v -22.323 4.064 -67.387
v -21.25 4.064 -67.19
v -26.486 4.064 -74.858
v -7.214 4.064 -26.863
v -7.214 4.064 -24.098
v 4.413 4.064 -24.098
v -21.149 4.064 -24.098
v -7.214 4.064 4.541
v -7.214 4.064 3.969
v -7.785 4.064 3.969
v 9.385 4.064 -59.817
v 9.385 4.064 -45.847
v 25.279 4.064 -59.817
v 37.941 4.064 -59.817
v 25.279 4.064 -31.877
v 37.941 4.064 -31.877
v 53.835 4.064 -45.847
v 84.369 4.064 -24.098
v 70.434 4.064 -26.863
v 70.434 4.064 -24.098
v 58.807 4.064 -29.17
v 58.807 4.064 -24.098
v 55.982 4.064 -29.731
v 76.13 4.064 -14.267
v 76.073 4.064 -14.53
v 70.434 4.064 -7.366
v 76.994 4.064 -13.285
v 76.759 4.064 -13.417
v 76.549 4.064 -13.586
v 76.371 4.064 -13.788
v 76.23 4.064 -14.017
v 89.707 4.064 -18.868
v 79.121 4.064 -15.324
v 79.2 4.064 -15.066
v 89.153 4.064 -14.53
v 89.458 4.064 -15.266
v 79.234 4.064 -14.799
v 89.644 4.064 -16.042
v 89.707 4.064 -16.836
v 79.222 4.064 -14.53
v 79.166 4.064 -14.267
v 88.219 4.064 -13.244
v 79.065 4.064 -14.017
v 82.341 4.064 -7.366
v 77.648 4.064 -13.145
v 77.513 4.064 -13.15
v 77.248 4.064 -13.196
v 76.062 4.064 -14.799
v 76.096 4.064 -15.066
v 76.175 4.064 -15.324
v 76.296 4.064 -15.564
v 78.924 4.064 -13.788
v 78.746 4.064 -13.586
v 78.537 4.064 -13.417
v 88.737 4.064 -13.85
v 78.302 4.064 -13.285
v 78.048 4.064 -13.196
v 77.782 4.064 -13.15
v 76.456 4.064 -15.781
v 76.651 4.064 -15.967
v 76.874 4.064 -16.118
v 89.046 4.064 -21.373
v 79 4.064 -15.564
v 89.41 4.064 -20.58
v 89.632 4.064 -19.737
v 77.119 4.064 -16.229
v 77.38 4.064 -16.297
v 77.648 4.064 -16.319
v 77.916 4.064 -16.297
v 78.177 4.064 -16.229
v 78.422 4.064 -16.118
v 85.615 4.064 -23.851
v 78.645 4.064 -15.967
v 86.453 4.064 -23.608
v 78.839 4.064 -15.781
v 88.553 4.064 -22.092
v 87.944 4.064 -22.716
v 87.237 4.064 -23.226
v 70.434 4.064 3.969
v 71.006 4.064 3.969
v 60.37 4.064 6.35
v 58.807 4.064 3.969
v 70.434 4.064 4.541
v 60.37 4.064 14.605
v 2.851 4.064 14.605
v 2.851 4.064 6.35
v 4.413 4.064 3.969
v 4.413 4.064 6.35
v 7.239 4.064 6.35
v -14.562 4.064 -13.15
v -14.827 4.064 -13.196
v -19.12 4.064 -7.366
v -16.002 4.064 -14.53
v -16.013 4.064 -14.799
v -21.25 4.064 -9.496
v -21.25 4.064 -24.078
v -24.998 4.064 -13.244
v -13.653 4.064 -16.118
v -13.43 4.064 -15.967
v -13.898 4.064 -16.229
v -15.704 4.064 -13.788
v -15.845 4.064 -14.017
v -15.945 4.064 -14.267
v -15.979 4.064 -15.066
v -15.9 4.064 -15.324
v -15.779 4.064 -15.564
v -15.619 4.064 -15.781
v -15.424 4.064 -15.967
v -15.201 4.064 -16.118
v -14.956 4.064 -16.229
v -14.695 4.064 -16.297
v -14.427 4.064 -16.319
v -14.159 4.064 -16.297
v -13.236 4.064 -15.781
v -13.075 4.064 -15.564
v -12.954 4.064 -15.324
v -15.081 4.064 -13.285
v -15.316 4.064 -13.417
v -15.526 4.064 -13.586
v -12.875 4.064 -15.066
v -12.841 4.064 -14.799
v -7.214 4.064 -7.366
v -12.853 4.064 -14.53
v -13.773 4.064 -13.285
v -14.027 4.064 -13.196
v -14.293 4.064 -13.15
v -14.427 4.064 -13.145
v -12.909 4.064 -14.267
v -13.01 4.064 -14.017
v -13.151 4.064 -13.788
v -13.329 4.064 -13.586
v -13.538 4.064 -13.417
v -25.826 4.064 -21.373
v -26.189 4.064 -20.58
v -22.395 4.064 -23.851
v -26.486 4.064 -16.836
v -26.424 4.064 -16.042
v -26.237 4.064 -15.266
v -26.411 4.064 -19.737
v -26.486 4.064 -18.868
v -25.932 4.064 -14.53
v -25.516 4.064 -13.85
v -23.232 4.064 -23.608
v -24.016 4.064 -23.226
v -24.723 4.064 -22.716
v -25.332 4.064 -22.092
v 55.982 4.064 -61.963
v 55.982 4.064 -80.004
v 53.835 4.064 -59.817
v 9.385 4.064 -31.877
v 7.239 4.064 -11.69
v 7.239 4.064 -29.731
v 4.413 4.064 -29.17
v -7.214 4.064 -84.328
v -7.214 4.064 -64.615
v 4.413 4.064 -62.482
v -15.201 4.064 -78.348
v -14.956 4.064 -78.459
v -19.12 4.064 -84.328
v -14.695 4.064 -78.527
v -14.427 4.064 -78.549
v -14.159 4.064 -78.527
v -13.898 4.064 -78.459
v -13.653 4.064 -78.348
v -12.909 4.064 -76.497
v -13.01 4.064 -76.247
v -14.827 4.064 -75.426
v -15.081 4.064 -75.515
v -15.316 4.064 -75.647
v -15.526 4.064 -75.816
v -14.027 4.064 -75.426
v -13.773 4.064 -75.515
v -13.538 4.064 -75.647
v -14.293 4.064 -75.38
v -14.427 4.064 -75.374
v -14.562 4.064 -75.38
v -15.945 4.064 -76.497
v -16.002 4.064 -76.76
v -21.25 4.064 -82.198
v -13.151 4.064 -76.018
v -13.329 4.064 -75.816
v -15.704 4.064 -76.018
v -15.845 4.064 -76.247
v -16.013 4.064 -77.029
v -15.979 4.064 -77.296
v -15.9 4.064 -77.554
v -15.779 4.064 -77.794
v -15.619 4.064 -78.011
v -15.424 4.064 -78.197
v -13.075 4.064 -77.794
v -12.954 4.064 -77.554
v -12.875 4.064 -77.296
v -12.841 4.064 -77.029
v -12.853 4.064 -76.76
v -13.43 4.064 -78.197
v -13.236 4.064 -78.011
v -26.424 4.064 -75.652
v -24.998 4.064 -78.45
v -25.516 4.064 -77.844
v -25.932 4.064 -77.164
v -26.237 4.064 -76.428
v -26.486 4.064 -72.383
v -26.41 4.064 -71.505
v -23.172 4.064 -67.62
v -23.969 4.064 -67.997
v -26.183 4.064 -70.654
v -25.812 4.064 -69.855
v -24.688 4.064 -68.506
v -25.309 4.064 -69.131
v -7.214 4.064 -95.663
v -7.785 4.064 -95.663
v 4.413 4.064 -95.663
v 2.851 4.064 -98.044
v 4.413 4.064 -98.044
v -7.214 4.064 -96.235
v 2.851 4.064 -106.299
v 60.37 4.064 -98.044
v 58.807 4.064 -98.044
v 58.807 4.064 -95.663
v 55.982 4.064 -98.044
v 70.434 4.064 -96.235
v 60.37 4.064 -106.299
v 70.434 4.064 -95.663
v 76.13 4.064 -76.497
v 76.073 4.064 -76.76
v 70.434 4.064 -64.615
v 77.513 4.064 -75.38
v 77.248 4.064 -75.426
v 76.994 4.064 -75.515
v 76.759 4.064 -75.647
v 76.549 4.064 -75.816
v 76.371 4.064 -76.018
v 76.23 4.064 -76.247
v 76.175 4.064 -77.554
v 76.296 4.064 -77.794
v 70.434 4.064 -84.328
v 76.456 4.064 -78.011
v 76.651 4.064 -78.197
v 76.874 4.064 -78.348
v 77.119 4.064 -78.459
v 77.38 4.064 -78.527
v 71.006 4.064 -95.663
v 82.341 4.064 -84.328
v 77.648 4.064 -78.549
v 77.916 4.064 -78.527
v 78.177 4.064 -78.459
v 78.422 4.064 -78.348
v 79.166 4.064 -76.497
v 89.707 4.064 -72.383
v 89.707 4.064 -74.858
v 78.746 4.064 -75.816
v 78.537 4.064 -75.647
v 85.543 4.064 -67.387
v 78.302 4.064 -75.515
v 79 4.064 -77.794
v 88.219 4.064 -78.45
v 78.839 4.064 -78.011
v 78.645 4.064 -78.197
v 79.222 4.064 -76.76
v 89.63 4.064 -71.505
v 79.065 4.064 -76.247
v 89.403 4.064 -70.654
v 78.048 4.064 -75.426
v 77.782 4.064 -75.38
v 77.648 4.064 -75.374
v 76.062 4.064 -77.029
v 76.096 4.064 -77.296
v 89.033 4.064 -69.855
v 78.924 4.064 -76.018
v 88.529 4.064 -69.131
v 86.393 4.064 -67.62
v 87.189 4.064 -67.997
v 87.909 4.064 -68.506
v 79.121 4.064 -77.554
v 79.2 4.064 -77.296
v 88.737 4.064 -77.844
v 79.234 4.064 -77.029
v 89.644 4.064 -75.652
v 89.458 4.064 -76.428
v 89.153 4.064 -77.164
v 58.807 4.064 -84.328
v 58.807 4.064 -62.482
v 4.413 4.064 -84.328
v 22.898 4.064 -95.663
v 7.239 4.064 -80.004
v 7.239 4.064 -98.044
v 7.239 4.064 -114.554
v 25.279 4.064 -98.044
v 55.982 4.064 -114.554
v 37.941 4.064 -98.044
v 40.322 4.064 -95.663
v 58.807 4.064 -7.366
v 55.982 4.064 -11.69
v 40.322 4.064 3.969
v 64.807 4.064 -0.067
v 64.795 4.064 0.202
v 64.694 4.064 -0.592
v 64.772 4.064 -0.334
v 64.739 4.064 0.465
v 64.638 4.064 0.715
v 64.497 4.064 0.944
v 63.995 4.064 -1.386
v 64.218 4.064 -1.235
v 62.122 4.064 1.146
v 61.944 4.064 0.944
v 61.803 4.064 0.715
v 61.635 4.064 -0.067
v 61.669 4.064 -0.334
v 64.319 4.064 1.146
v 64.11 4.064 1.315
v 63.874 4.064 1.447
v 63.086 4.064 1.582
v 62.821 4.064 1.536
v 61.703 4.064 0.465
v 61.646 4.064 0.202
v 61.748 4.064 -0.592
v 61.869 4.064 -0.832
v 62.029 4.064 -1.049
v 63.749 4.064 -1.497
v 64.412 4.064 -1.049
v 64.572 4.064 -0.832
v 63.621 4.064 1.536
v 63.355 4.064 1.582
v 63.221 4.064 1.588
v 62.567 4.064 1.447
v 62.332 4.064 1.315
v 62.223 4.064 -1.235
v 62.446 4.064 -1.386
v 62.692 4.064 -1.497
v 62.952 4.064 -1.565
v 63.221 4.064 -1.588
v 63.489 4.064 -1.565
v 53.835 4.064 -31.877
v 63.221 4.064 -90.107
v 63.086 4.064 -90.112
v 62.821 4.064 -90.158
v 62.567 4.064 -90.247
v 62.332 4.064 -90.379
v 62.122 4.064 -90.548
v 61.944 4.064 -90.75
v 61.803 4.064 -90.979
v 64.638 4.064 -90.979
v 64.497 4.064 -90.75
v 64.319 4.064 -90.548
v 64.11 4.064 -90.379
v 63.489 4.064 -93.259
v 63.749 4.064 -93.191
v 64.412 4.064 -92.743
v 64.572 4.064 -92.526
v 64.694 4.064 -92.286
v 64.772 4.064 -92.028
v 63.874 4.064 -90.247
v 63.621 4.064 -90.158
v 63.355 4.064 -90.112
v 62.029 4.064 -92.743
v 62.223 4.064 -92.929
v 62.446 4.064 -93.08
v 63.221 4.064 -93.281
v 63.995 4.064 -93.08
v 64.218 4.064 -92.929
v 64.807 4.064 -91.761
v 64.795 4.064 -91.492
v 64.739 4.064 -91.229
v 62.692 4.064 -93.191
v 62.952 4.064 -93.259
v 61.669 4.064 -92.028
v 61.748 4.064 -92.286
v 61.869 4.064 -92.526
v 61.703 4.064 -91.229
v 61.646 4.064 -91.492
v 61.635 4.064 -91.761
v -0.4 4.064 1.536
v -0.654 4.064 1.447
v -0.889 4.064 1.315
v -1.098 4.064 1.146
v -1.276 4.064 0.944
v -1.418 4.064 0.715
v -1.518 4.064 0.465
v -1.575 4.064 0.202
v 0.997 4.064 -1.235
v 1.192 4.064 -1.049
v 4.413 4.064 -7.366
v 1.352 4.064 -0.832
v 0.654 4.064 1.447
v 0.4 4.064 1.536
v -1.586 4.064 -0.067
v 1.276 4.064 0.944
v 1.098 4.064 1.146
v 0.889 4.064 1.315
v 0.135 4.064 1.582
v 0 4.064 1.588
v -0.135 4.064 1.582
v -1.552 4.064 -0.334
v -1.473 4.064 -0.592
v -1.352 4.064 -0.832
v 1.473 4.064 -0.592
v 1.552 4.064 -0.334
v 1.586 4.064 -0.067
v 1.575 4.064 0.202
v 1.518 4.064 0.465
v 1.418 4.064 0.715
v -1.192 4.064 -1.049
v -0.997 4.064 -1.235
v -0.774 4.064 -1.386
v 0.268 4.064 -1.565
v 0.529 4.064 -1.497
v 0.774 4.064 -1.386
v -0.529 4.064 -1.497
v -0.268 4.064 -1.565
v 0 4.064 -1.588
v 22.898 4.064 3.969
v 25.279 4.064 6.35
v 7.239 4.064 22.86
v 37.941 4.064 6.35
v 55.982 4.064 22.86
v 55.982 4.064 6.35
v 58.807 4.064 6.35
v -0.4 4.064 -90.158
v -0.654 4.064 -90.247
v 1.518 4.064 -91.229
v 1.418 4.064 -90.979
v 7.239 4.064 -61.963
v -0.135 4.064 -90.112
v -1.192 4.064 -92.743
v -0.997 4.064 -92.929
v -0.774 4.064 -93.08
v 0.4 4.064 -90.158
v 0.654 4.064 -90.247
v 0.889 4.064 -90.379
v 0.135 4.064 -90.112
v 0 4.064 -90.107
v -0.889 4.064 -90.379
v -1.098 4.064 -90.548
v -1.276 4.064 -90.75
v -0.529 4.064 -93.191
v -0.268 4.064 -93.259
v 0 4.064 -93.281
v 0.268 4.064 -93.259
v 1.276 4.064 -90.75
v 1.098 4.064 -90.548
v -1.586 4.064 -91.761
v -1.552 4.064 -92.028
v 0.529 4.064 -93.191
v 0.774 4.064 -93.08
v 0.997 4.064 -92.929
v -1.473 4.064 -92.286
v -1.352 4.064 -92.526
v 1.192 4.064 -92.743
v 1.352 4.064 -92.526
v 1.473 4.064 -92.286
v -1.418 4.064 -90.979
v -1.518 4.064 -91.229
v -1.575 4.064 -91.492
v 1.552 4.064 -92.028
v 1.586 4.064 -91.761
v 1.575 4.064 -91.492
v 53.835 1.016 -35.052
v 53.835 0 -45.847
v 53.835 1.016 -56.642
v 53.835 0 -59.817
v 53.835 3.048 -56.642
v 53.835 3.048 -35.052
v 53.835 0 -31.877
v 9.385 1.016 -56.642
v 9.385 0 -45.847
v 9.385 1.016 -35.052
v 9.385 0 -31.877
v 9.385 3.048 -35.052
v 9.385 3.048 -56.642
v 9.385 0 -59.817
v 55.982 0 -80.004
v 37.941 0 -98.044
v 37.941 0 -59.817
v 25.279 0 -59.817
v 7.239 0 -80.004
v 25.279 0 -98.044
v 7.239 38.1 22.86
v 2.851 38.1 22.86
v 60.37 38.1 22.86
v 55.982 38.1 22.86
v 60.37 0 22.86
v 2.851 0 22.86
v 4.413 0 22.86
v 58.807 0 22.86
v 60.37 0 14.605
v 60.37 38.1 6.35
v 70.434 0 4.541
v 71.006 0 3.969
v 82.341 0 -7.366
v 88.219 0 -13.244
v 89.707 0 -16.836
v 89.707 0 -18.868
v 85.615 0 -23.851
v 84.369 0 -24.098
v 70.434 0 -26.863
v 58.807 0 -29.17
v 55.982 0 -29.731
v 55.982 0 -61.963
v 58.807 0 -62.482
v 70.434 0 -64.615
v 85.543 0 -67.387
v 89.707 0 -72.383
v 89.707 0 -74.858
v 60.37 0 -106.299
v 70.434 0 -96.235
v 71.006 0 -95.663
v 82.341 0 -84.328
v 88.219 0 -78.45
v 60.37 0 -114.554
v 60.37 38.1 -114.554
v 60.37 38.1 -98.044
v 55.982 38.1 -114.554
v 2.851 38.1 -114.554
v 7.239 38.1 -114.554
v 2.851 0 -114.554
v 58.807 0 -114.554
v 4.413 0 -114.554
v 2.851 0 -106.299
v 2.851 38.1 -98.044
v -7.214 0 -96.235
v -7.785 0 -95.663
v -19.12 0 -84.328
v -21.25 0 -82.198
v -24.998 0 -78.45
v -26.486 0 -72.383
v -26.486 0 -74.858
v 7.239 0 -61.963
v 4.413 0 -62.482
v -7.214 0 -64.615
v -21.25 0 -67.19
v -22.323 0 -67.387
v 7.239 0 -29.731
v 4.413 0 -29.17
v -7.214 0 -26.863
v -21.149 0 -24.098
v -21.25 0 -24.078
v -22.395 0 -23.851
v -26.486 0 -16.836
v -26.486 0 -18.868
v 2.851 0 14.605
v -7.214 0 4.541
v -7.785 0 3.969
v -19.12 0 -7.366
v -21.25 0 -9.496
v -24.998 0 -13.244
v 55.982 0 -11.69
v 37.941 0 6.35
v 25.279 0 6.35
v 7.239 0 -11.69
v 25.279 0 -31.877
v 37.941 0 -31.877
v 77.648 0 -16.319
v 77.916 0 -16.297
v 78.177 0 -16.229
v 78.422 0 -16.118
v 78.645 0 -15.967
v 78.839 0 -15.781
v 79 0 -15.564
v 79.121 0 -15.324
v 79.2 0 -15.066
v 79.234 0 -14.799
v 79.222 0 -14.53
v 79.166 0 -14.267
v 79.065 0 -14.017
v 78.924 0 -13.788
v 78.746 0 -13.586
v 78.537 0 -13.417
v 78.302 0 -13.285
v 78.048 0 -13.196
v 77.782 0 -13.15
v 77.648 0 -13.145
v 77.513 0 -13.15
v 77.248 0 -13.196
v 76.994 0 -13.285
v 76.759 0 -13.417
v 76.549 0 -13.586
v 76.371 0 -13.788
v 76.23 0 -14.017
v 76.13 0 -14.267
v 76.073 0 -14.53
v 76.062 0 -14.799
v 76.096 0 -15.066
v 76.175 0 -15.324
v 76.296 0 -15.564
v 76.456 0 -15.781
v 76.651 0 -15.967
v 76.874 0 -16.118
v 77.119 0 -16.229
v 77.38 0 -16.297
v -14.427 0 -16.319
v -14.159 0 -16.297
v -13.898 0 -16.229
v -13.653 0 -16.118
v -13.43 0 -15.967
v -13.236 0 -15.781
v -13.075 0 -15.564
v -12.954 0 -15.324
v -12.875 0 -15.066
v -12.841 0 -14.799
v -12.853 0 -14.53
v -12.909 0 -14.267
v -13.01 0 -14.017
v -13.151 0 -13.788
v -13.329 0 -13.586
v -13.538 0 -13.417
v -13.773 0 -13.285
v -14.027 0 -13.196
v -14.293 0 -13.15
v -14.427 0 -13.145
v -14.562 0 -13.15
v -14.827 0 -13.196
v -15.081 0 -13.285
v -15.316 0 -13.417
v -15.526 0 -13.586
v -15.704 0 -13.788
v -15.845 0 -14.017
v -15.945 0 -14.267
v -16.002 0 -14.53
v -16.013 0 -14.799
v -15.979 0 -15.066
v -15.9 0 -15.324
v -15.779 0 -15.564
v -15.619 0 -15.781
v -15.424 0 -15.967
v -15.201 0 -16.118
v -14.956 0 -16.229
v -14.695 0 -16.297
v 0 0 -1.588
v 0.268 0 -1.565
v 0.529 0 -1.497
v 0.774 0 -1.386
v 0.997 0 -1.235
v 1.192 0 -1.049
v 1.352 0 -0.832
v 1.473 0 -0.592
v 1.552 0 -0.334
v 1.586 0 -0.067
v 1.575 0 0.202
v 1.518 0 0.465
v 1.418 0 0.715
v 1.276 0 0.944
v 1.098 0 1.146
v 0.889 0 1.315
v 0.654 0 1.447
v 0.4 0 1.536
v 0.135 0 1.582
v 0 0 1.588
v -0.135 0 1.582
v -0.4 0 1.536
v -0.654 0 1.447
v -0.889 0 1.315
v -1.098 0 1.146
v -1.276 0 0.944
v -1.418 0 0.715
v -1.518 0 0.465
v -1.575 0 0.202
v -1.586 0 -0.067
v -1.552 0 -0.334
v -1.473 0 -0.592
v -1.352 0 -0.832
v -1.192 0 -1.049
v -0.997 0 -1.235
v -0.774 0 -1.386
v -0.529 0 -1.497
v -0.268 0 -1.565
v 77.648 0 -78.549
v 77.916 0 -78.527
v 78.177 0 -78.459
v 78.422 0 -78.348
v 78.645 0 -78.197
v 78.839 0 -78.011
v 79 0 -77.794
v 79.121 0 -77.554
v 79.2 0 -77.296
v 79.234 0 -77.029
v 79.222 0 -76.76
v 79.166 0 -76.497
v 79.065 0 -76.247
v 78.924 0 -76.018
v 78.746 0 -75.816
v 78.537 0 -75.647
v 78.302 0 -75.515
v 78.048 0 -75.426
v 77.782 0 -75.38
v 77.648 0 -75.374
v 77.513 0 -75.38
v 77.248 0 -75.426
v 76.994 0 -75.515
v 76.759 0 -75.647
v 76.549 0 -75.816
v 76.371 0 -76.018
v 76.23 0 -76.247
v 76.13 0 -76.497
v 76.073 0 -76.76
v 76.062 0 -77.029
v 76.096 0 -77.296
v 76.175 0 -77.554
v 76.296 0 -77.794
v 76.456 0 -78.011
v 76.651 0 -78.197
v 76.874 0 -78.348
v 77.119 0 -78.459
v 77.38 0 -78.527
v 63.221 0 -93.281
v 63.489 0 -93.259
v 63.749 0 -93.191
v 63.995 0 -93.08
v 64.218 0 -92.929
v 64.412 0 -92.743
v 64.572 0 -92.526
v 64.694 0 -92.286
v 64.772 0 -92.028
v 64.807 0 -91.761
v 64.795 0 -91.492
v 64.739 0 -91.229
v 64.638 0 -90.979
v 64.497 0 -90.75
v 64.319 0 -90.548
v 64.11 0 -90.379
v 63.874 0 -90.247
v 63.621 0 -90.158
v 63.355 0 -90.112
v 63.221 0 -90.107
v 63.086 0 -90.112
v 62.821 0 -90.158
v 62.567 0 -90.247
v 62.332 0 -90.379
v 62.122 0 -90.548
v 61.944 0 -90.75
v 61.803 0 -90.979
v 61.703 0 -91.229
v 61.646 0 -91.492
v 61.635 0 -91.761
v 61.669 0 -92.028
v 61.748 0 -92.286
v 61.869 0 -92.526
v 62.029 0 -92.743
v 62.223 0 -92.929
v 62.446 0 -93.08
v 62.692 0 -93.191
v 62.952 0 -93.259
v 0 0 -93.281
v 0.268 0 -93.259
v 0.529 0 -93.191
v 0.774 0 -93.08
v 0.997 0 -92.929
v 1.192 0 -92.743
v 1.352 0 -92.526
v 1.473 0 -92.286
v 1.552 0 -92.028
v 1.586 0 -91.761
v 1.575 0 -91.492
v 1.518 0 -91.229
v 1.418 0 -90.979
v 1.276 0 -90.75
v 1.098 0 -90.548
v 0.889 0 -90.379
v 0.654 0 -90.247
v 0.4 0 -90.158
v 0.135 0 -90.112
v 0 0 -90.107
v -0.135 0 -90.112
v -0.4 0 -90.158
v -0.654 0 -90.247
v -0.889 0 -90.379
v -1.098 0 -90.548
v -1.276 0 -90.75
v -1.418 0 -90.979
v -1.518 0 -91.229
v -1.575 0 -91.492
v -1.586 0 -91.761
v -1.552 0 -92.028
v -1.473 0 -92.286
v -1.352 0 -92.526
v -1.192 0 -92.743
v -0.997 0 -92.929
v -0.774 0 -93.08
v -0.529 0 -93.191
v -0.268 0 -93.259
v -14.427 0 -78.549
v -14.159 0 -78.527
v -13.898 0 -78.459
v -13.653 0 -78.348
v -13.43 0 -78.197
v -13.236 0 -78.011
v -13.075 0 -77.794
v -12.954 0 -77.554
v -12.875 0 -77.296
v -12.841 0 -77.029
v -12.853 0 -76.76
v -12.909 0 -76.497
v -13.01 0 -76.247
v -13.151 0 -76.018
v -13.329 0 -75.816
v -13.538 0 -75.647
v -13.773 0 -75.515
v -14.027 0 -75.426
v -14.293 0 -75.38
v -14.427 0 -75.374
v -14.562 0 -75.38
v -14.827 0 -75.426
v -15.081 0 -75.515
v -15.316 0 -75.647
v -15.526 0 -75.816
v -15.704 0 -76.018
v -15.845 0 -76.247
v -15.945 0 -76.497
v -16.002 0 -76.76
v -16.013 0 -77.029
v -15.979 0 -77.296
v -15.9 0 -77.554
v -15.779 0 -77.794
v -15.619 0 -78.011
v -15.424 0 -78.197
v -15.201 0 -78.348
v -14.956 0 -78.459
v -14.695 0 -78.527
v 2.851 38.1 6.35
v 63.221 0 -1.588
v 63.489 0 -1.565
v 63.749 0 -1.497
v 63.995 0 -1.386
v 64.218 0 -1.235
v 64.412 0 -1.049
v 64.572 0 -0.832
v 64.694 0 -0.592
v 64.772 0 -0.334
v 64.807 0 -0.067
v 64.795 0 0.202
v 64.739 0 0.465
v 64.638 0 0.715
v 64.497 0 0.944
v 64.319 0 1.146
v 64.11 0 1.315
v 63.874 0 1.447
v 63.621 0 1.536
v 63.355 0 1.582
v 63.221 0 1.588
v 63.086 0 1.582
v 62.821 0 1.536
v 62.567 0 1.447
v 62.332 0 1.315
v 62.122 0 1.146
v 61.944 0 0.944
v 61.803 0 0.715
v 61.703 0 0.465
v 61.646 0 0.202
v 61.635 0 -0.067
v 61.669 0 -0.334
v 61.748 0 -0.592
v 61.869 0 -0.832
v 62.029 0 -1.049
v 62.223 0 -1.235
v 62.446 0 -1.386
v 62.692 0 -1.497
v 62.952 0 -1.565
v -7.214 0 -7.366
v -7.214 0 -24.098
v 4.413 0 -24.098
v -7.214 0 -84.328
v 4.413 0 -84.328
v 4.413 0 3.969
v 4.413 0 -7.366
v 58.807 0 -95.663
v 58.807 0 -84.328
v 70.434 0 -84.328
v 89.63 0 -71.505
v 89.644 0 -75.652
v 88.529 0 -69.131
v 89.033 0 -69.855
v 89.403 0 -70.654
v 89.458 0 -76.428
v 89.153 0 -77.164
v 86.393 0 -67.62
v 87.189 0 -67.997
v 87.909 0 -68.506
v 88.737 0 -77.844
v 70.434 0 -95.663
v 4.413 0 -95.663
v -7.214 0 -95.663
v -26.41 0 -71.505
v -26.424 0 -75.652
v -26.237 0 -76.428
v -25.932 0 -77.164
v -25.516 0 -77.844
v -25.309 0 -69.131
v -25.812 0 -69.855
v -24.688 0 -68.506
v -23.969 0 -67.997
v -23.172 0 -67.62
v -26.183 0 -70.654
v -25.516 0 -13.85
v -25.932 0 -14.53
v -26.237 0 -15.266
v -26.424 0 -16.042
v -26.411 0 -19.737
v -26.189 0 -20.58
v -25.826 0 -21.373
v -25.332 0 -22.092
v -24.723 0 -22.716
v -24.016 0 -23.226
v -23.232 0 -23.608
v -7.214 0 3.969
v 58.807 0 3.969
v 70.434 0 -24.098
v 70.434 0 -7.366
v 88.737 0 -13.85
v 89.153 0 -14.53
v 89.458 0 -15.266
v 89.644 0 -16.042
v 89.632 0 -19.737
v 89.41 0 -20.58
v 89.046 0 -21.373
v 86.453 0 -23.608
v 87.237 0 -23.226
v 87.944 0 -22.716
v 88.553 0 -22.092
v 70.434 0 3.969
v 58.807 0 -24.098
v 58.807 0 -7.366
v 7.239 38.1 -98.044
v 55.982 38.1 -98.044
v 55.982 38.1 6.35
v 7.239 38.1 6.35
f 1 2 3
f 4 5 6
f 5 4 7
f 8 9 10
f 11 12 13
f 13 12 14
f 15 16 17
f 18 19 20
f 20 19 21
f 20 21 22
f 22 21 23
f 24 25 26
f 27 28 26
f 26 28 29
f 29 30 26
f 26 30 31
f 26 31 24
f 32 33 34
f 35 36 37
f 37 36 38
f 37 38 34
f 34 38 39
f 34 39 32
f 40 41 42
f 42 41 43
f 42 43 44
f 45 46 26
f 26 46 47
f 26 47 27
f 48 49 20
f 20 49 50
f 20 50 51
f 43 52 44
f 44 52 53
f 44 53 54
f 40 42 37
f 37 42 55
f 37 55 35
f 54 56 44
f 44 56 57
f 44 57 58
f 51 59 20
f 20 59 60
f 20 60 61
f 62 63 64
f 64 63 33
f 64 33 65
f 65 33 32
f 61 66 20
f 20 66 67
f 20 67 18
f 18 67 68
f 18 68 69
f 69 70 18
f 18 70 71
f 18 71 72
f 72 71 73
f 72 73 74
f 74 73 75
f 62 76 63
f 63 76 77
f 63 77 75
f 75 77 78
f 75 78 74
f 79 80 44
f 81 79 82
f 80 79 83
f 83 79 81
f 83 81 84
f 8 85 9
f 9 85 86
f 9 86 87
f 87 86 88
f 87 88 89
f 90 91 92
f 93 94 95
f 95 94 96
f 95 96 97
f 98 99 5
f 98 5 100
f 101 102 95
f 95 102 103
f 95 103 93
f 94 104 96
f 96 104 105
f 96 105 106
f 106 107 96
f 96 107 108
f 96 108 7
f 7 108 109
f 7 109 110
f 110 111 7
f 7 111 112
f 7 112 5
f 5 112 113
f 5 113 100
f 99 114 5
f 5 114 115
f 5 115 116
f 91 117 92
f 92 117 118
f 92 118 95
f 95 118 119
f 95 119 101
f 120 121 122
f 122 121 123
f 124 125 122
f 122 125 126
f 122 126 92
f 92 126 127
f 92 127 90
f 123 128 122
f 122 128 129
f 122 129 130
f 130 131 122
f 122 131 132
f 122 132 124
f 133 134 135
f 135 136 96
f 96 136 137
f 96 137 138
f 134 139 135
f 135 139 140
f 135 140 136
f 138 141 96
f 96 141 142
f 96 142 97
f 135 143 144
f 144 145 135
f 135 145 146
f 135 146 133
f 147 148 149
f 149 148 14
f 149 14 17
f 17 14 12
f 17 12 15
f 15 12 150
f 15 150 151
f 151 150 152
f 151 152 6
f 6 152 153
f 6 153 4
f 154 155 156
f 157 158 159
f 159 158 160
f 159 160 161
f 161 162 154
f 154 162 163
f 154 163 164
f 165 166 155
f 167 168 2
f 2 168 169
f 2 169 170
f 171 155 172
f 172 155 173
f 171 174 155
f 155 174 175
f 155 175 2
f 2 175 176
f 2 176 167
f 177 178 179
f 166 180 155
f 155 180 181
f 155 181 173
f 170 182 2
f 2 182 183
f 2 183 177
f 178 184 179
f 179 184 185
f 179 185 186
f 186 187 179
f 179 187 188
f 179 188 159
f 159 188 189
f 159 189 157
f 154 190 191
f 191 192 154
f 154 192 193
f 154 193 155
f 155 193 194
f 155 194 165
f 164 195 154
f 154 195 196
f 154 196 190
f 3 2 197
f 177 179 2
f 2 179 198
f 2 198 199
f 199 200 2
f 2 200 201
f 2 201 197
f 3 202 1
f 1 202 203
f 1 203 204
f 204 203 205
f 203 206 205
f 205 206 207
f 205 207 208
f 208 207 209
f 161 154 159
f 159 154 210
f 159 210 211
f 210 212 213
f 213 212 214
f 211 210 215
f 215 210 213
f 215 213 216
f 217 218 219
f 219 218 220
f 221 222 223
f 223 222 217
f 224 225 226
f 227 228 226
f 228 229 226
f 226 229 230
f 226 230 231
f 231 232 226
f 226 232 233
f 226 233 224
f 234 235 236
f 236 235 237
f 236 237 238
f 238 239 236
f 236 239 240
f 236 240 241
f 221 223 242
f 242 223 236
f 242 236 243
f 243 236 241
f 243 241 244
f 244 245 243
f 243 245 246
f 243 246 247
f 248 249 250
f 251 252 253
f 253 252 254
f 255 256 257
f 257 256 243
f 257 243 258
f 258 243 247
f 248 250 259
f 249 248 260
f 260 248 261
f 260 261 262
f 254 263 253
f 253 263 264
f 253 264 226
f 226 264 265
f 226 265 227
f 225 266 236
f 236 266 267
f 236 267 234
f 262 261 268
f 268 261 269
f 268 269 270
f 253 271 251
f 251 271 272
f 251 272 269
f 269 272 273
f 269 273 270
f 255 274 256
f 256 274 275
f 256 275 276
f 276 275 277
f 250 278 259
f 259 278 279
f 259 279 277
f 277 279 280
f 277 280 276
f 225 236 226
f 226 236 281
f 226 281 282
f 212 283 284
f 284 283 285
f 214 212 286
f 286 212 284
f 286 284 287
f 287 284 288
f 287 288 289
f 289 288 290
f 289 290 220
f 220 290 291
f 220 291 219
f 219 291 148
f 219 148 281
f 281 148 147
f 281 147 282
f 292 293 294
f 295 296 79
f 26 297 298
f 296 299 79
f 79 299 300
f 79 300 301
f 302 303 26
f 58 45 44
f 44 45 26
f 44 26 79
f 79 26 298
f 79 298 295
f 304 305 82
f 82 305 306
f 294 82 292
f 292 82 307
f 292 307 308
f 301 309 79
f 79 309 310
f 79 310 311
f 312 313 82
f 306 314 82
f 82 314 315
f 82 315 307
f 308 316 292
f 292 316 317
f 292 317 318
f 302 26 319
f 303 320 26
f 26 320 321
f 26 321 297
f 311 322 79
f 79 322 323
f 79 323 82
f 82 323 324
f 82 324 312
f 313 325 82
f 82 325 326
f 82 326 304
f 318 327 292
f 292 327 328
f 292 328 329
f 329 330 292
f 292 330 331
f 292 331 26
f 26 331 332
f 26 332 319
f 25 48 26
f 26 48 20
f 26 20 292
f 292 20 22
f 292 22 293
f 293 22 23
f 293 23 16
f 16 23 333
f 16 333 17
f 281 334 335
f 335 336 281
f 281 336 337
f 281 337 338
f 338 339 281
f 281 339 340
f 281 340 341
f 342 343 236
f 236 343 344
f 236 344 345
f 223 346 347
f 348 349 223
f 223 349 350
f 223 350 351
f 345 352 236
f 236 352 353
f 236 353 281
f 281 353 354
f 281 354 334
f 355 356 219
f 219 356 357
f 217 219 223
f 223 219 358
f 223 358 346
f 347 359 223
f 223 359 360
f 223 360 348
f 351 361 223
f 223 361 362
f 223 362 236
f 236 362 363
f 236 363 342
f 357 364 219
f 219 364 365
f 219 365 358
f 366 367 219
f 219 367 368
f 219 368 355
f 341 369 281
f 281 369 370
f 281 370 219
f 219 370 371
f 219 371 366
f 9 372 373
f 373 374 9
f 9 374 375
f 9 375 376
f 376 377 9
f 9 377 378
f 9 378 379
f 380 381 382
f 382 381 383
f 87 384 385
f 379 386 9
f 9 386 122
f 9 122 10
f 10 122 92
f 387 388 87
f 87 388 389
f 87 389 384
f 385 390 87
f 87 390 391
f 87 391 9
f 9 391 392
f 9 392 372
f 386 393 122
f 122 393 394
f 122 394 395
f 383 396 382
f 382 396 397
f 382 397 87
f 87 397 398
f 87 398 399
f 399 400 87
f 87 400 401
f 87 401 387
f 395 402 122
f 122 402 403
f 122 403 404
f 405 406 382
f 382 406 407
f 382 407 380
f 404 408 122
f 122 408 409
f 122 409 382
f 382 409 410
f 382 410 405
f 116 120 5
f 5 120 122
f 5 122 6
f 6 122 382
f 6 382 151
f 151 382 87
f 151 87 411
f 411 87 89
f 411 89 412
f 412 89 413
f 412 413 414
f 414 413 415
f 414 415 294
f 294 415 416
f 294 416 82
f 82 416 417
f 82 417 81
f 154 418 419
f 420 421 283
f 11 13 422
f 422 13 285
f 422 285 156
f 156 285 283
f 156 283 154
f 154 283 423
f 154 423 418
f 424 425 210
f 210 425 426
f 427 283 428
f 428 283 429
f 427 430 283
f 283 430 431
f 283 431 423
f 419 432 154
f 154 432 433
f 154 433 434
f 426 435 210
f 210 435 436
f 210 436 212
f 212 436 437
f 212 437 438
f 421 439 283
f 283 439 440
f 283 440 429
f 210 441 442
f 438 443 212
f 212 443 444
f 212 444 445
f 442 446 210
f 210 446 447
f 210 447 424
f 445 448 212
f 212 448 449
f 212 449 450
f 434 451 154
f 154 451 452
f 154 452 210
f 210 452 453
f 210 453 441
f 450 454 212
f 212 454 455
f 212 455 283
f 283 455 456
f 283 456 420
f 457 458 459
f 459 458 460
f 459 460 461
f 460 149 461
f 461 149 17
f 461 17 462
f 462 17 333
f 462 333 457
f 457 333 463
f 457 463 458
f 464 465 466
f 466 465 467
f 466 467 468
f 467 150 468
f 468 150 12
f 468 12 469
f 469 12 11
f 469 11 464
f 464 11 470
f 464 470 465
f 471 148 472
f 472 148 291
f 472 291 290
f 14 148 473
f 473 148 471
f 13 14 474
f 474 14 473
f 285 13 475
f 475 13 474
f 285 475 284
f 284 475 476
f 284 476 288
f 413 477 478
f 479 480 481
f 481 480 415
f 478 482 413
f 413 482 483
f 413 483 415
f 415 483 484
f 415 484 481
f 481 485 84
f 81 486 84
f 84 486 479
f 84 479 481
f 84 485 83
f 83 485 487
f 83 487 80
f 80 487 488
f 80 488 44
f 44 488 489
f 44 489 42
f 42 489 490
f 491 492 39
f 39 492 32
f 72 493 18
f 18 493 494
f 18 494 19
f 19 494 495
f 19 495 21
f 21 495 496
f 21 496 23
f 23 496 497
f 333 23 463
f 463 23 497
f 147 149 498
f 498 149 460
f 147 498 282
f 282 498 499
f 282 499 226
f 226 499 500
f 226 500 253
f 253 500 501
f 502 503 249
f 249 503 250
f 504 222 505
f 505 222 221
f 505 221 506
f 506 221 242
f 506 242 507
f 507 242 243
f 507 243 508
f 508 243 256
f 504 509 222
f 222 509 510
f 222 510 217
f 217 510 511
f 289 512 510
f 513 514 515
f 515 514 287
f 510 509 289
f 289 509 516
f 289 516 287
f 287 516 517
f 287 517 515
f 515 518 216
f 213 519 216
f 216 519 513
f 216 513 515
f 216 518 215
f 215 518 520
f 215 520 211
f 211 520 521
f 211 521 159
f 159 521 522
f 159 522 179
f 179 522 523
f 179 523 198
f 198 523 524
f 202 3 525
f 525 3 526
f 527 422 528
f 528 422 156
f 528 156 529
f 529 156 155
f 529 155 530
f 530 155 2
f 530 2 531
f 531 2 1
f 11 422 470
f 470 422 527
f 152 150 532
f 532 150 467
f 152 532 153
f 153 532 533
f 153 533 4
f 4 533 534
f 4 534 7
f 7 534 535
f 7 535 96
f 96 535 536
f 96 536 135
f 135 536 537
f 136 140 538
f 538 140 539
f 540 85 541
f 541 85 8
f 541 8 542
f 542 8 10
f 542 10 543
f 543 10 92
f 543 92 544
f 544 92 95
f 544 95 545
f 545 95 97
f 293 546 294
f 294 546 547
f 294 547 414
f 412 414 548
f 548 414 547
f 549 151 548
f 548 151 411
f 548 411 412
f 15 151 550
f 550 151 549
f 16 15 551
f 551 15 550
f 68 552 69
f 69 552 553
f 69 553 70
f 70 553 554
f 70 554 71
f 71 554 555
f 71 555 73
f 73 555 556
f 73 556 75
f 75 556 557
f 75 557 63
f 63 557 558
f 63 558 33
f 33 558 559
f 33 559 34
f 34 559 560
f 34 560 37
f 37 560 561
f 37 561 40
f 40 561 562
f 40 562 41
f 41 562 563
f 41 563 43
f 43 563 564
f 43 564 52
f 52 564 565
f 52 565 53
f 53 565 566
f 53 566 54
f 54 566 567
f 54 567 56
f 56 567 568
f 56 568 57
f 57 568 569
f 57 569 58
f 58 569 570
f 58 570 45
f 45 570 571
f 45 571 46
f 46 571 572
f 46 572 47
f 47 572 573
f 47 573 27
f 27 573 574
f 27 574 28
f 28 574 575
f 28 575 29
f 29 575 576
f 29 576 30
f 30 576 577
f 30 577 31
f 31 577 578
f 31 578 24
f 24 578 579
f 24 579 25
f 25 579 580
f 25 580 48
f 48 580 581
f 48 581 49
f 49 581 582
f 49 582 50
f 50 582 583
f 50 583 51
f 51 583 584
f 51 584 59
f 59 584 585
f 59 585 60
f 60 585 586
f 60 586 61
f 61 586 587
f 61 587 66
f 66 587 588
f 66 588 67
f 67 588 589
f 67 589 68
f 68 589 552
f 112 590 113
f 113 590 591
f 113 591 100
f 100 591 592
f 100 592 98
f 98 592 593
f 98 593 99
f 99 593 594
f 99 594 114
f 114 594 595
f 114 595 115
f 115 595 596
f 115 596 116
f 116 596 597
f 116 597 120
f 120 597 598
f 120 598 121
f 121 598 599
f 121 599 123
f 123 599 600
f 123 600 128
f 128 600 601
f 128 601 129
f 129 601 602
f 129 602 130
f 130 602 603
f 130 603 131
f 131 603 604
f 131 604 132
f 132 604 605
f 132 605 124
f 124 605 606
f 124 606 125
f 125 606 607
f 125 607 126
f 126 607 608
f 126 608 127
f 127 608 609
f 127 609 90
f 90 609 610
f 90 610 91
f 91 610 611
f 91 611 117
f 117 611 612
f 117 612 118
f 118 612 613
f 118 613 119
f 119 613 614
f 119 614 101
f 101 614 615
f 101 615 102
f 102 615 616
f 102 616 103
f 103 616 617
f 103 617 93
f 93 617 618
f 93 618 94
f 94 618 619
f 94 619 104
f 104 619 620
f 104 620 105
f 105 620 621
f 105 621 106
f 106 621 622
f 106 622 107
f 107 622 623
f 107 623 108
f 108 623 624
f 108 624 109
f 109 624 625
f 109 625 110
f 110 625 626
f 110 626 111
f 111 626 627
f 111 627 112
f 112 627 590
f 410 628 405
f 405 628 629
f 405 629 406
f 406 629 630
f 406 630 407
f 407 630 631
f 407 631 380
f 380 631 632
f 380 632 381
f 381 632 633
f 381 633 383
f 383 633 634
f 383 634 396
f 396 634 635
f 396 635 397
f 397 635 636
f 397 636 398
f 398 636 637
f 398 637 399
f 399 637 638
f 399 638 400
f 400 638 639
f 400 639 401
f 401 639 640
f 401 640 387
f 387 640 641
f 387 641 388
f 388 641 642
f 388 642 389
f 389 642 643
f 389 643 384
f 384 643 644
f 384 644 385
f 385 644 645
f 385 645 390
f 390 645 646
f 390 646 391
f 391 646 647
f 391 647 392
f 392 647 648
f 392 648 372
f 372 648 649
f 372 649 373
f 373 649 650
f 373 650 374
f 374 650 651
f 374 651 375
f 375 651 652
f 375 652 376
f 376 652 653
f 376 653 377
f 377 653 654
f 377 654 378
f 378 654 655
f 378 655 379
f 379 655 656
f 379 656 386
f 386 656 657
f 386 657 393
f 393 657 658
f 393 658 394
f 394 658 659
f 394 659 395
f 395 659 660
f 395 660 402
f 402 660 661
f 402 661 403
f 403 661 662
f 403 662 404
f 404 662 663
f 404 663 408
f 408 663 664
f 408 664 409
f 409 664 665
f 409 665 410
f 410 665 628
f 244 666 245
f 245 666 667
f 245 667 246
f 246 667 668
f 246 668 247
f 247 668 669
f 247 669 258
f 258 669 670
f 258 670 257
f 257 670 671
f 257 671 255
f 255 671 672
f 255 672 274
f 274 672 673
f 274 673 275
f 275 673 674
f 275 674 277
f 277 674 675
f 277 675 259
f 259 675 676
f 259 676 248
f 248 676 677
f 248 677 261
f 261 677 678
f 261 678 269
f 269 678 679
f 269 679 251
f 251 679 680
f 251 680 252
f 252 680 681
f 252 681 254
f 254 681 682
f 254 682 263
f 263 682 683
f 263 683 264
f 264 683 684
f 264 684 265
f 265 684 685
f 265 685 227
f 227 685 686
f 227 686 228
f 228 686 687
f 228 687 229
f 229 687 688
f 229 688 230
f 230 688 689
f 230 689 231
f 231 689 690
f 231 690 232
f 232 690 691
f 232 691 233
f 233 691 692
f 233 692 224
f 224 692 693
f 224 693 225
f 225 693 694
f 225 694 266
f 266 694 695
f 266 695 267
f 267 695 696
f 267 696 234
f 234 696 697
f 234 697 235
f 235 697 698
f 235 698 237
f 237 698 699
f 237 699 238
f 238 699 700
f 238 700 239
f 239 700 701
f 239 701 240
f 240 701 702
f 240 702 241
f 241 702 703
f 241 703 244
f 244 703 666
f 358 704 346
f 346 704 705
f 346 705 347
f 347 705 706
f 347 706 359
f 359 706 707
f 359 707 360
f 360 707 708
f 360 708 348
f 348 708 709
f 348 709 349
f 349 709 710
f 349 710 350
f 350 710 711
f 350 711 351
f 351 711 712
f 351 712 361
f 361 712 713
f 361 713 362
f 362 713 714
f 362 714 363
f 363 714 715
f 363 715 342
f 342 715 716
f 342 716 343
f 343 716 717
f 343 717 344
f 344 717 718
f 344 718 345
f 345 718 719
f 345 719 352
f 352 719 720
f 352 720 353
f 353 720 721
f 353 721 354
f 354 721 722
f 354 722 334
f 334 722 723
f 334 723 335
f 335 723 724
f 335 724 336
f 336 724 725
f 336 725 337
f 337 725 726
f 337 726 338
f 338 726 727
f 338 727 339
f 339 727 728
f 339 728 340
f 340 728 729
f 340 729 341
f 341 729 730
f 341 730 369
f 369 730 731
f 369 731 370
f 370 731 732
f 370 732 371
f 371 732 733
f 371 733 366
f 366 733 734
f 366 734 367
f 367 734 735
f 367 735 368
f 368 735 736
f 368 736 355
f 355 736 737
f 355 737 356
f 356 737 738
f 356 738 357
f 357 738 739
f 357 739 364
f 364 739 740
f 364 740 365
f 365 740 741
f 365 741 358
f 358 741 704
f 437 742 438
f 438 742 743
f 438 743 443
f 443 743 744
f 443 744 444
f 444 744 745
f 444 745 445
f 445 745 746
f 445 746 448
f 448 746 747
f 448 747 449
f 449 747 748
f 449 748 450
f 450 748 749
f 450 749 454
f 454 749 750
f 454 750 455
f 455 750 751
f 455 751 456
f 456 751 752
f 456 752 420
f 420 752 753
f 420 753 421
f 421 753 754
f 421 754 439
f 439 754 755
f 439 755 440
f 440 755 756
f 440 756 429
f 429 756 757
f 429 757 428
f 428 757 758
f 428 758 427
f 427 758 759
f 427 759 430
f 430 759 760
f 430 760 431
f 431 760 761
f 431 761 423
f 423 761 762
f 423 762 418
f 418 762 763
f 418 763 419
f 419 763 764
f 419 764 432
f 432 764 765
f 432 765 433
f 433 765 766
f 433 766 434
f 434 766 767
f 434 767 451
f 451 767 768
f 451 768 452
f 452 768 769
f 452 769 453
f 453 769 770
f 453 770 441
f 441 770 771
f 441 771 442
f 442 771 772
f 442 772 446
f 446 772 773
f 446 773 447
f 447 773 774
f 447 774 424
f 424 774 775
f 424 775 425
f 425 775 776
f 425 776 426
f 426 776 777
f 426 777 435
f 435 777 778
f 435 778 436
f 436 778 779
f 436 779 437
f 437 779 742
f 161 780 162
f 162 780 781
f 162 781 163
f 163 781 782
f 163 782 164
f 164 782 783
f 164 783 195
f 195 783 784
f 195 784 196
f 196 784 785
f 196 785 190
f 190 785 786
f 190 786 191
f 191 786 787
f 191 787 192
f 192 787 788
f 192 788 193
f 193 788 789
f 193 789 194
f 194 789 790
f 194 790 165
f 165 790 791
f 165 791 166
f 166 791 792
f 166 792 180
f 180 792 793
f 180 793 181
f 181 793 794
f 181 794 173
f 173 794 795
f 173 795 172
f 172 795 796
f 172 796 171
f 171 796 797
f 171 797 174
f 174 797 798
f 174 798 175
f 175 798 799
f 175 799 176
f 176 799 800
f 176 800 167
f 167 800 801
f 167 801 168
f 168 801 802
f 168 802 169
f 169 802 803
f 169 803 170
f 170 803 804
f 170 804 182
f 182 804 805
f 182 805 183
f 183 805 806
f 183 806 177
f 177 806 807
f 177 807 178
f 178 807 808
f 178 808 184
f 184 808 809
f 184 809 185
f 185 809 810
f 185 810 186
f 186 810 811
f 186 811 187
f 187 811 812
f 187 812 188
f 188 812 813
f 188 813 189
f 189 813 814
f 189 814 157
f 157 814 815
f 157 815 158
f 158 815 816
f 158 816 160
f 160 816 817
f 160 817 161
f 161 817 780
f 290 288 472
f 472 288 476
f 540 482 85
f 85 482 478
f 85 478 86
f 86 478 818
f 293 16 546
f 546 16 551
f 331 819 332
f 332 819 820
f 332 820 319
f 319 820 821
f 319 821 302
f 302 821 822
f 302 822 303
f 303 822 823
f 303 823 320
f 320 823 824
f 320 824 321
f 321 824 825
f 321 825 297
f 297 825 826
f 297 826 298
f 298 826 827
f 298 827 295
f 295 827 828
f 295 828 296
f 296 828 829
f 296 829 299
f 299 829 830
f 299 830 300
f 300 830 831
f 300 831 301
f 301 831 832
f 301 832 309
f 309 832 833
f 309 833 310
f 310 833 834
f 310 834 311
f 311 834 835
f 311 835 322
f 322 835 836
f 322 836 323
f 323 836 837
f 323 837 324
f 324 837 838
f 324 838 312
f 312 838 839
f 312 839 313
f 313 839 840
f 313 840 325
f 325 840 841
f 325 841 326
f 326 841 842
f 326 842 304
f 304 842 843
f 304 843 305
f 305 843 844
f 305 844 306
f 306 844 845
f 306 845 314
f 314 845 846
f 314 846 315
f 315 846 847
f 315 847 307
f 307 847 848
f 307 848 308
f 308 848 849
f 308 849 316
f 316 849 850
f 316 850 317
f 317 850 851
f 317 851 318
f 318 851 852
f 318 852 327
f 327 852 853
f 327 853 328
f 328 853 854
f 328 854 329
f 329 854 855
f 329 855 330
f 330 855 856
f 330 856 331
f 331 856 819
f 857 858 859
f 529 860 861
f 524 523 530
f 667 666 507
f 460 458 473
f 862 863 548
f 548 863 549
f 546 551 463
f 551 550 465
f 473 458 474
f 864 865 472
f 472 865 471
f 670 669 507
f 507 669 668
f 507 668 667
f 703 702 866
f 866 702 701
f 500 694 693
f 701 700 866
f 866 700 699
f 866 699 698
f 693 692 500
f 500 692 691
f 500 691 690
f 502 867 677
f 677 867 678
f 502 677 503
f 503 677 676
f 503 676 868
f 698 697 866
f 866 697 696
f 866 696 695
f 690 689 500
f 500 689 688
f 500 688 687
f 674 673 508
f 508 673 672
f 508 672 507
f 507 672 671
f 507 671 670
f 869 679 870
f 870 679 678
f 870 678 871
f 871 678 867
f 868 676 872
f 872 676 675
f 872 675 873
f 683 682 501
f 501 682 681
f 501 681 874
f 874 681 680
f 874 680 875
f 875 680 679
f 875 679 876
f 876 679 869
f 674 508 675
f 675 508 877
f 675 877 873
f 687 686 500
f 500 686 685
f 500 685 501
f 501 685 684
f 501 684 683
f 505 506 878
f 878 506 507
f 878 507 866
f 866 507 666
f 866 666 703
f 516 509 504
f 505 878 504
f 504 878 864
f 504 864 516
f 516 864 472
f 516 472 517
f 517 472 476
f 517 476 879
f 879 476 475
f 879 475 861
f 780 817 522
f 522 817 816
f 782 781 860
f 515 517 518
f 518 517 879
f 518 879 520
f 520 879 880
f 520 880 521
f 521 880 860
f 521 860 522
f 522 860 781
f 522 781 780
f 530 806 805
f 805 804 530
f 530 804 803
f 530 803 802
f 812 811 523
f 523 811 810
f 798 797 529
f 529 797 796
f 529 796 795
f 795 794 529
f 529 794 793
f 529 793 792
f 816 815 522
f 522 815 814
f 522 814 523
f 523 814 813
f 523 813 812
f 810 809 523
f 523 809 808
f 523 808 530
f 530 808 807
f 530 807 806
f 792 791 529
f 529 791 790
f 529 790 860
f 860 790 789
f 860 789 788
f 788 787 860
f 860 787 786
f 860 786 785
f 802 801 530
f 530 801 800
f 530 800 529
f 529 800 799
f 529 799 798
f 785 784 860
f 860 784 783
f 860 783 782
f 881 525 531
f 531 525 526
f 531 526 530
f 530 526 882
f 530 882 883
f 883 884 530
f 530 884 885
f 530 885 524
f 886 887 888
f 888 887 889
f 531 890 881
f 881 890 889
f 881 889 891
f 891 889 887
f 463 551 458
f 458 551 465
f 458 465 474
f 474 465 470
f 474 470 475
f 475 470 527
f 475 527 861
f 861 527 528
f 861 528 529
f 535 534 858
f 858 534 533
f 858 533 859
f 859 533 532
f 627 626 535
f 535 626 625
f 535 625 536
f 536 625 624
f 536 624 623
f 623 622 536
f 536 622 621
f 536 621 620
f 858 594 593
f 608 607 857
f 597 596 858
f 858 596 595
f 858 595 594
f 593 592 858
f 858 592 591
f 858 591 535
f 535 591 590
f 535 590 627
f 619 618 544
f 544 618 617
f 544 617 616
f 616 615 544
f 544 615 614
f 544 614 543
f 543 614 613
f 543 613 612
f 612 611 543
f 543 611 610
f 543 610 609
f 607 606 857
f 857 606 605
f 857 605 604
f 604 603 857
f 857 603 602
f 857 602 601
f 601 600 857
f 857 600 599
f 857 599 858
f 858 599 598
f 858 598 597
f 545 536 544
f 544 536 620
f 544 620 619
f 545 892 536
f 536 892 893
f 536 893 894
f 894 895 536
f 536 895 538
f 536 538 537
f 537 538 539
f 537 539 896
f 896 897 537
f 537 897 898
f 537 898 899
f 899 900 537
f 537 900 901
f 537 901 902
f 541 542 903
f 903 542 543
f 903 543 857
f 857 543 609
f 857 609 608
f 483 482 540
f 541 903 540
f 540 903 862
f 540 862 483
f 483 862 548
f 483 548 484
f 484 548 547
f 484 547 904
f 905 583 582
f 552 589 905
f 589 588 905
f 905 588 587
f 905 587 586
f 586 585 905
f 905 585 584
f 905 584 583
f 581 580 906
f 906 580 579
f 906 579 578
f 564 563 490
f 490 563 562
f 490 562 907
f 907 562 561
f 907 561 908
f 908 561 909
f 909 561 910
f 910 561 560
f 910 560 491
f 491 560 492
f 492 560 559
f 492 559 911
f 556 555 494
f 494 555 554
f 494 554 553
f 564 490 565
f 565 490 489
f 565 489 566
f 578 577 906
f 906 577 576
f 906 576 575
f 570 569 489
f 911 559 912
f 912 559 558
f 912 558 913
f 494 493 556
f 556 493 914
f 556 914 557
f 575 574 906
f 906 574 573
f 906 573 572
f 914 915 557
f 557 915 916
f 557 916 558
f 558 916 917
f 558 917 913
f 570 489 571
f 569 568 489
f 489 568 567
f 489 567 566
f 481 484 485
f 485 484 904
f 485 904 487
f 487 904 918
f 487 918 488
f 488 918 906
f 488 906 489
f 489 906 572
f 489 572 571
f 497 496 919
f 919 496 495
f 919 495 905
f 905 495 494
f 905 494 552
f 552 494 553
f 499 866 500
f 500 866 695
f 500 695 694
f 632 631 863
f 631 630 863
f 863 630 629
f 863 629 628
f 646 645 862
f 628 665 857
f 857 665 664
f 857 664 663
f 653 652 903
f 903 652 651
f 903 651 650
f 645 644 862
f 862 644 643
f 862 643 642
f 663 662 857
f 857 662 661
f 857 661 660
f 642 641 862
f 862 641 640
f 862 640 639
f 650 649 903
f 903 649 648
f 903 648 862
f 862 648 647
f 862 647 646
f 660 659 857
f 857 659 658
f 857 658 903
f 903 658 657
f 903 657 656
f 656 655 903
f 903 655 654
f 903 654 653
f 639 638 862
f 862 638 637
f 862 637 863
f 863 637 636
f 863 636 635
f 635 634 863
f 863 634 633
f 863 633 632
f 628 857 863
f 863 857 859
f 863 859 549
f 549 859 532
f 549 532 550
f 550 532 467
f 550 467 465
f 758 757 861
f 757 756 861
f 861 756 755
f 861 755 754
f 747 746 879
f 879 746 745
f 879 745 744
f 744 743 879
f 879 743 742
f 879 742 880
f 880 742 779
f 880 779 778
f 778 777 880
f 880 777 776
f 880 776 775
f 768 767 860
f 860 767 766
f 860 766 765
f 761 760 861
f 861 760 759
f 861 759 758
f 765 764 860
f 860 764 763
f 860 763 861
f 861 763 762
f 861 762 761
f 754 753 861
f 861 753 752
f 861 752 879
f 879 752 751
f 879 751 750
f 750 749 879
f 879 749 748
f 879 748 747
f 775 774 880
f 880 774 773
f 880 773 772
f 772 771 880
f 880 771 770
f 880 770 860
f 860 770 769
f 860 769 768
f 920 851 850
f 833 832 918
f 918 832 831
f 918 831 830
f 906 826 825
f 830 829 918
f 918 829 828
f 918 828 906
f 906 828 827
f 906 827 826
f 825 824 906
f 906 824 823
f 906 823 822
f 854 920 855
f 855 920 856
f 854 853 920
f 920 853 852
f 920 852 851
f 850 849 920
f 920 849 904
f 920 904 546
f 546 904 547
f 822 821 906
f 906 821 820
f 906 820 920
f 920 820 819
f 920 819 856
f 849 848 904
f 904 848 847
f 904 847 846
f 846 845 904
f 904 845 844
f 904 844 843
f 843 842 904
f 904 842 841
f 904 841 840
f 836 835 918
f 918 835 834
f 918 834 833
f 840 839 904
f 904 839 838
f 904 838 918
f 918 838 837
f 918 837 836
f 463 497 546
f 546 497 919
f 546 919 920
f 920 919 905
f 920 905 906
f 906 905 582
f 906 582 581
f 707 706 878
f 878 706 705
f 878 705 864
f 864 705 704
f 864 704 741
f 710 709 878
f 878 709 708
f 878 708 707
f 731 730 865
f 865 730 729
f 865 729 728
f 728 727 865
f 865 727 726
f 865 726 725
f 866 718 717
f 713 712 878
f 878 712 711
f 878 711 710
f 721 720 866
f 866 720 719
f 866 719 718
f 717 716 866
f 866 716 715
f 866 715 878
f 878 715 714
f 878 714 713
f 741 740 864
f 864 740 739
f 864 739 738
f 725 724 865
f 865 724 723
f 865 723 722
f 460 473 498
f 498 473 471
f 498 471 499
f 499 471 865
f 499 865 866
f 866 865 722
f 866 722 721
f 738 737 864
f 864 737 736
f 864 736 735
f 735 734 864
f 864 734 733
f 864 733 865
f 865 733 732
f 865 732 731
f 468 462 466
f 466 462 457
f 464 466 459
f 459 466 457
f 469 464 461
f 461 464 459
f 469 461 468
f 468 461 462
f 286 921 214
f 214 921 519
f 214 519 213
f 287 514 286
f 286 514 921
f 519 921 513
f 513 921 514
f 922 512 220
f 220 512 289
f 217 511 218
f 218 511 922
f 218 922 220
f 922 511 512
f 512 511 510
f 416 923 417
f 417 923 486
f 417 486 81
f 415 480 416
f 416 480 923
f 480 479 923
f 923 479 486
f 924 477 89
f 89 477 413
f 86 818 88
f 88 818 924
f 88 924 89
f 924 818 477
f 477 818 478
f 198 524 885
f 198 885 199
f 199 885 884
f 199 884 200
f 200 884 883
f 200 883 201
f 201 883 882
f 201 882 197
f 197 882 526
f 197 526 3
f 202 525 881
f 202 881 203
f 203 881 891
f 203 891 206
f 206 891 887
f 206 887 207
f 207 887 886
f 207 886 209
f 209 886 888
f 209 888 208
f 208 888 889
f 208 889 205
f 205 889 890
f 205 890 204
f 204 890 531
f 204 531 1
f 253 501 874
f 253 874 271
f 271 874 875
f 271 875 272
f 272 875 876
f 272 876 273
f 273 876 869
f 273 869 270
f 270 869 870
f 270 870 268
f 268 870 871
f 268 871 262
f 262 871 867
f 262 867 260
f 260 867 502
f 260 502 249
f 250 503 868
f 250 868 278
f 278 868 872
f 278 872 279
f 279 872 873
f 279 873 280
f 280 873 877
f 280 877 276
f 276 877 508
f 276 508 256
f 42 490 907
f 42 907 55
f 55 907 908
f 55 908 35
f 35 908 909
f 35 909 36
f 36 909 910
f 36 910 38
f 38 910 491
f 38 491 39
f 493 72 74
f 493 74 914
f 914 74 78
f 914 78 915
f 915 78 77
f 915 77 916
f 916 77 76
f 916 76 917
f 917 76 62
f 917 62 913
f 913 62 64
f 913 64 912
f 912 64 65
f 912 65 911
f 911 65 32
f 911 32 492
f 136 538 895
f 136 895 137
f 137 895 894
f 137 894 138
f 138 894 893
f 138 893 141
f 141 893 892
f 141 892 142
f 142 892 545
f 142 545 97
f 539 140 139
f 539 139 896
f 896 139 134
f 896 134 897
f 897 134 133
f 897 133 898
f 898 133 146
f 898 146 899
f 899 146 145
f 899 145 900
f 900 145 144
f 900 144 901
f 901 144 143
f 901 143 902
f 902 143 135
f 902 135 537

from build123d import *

# Parameters (mm, degrees)
SKETCH1_R           = 1.5875
BOSS_EXTRUDE2_DEPTH = 4.064
SKETCH3_W           = 21.59
SKETCH3_H           = 2.032
CUT_EXTRUDE1_DEPTH  = 140.966661307
SKETCH1_7_W         = 4.388124697
SKETCH1_7_H         = 16.51
BOSS_EXTRUDE3_DEPTH = 38.1
FILLET1_R           = 5.08
FILLET2_R           = 5.08
FILLET3_R           = 5.08


with BuildPart() as part:
    # Sketch1 → Boss-Extrude2 (new body)
    with BuildSketch(Plane(origin=(0, 0, 0), x_dir=(1, 0, 0), z_dir=(0, 1, 0))):
        Polygon((7.239, 61.9633), (9.3853, 59.817), (9.3853, 31.877), (7.239, 29.7307), (-26.486124697, 23.039223833), (-26.486124697, 14.732), (2.850875303, -14.605), (2.850875303, -22.86), (60.369724697, -22.86), (60.369724697, -14.605), (89.706724697, 14.732), (89.706724697, 23.039223833), (55.9816, 29.7307), (53.8353, 31.877), (53.8353, 59.817), (55.9816, 61.9633), (89.706724697, 68.150498918), (89.706724697, 76.962), (60.369724697, 106.299), (60.369724697, 114.554), (31.6103, 114.554), (2.850875303, 114.554), (2.850875303, 106.299), (-26.486124697, 76.962), (-26.486124697, 68.150498918), align=None)
        Polygon((25.27935, 59.817), (7.239, 80.00365), (25.27935, 98.044), (37.94125, 98.044), (55.9816, 80.00365), (37.94125, 59.817), align=None, mode=Mode.SUBTRACT)
        with Locations((0, 91.694)):
            Circle(SKETCH1_R, mode=Mode.SUBTRACT)
        with Locations((-14.4272, 76.962)):
            Circle(SKETCH1_R, mode=Mode.SUBTRACT)
        Polygon((25.27935, 31.877), (37.94125, 31.877), (55.9816, 11.69035), (37.94125, -6.35), (25.27935, -6.35), (7.239, 11.69035), align=None, mode=Mode.SUBTRACT)
        with Locations((63.2206, 91.694)):
            Circle(SKETCH1_R, mode=Mode.SUBTRACT)
        with Locations((77.6478, 76.962)):
            Circle(SKETCH1_R, mode=Mode.SUBTRACT)
        with Locations((77.6478, 14.732)):
            Circle(SKETCH1_R, mode=Mode.SUBTRACT)
        with Locations((63.2206, 0)):
            Circle(SKETCH1_R, mode=Mode.SUBTRACT)
        with Locations((-14.4272, 14.732)):
            Circle(SKETCH1_R, mode=Mode.SUBTRACT)
        Circle(SKETCH1_R, mode=Mode.SUBTRACT)
    extrude(amount=BOSS_EXTRUDE2_DEPTH)

    # Sketch3 → Cut-Extrude1 (cut, through all)
    with BuildSketch(Plane.ZY.offset(-9.3853)):
        with Locations((-45.847, 2.032)):
            Rectangle(SKETCH3_W, SKETCH3_H)
    extrude(amount=-CUT_EXTRUDE1_DEPTH, mode=Mode.SUBTRACT)

    # Sketch1<7> → Boss-Extrude3 (add)
    with BuildSketch(Plane(origin=(0, 0, 0), x_dir=(1, 0, 0), z_dir=(0, 1, 0))):
        with Locations((5.044937652, 106.299)):
            Rectangle(SKETCH1_7_W, SKETCH1_7_H)
        with Locations((58.175662348, 106.299)):
            Rectangle(SKETCH1_7_W, SKETCH1_7_H)
        with Locations((5.044937652, -14.605)):
            Rectangle(SKETCH1_7_W, SKETCH1_7_H)
        with Locations((58.175662348, -14.605)):
            Rectangle(SKETCH1_7_W, SKETCH1_7_H)
    extrude(amount=BOSS_EXTRUDE3_DEPTH)

    # Fillet1
    fillet1_edges = [part.edges().sort_by_distance(p)[0] for p in [
        (-26.486124697, 2.032, -76.962),
    ]]
    fillet(fillet1_edges, radius=FILLET1_R)

    # Fillet2
    fillet2_edges = [part.edges().sort_by_distance(p)[0] for p in [
        (-26.486124697, 2.032, -68.150498918),
    ]]
    fillet(fillet2_edges, radius=FILLET2_R)

    # Fillet3
    fillet3_edges = [part.edges().sort_by_distance(p)[0] for p in [
        (89.706724697, 2.032, -68.150498918),
        (89.706724697, 2.032, -76.962),
        (89.706724697, 2.032, -14.732),
        (89.706724697, 2.032, -23.039223833),
        (-26.486124697, 2.032, -14.732),
        (-26.486124697, 2.032, -23.039223833),
    ]]
    fillet(fillet3_edges, radius=FILLET3_R)


solid = part.part
